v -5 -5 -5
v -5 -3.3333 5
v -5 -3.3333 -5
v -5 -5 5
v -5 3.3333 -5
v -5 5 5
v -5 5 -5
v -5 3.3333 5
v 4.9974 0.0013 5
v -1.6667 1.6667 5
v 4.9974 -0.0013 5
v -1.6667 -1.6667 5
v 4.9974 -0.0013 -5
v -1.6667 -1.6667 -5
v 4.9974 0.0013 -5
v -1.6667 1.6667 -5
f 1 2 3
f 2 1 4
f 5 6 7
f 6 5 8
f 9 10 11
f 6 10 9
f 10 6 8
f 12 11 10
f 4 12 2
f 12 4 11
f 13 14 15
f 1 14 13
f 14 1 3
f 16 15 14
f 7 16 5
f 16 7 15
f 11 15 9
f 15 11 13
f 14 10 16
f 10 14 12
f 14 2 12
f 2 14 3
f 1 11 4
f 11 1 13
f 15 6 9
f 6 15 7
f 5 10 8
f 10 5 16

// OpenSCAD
// Generated by SolidPython 1.1.3 on 2025-02-20 04:04:01
$fn=50;


intersection() {
	translate(v = [-5.0000000000, -5.0000000000, -5.0000000000]) {
		linear_extrude(height = 10) {
			polygon(points = [[5.0000000000, 10.0000000000], [5.3203510999, 9.9897269638], [5.6393858084, 9.9589500691], [5.9557931435, 9.9077957850], [6.2682729195, 9.8364743152], [6.5755410901, 9.7452787351], [6.8763350244, 9.6345837867], [7.1694186956, 9.5048443395], [7.4535877600, 9.3565935206], [7.7276745061, 9.1904405245], [7.9905526525, 9.0070681093], [8.2411419765, 8.8072297918], [8.4784127530, 8.5917467505], [8.7013899854, 8.3615044513], [8.9091574123, 8.1174490093], [9.1008612730, 7.8605833006], [9.2757138150, 7.5919628416], [9.4329965319, 7.3126914512], [9.5720631151, 7.0239167156], [9.6923421102, 6.7268252721], [9.7933392652, 6.4226379332], [9.8746395609, 6.1126046698], [9.9359089171, 5.7979994752], [9.9768955647, 5.4801151295], [9.9974310810, 5.1602578879], [9.9974310810, 4.8397421121], [9.9768955647, 4.5198848705], [9.9359089171, 4.2020005248], [9.8746395609, 3.8873953302], [9.7933392652, 3.5773620668], [9.6923421102, 3.2731747279], [9.5720631151, 2.9760832844], [9.4329965319, 2.6873085488], [9.2757138150, 2.4080371584], [9.1008612730, 2.1394166994], [8.9091574123, 1.8825509907], [8.7013899854, 1.6384955487], [8.4784127530, 1.4082532495], [8.2411419765, 1.1927702082], [7.9905526525, 0.9929318907], [7.7276745061, 0.8095594755], [7.4535877600, 0.6434064794], [7.1694186956, 0.4951556605], [6.8763350244, 0.3654162133], [6.5755410901, 0.2547212649], [6.2682729195, 0.1635256848], [5.9557931435, 0.0922042150], [5.6393858084, 0.0410499309], [5.3203510999, 0.0102730362], [5.0000000000, 0.0000000000], [0, 0], [0, 10]]);
		}
	}
	rotate(a = -90, v = [0, 0, 1]) {
		translate(v = [-5.0000000000, -5.0000000000, -5.0000000000]) {
			linear_extrude(height = 10) {
				polygon(points = [[0, 0], [5.0000000000, 10], [10, 0], [8.3333333333, 0], [6.6666666667, 3.3333333333], [3.3333333333, 3.3333333333], [1.6666666667, 0]]);
			}
		}
	}
}
/***********************************************
*********      SolidPython code:      **********
************************************************
 
from solid import *
from solid.utils import *

import math
import matplotlib.pyplot as plt
import subprocess
import os

class Hole:
    def __init__(self, x, y, radius):
        """
        Hole defined by:
        :param x: x dimension for center point of the circle as a ratio of letter height
        :param y: y dimension for center point of the circle as a ratio of letter height
        :param radius: radius of circle as a ratio of letter height
        """
        self.x = x
        self.y = y
        self.radius = radius

class Letter3D:
    def __init__(self, name, outer_shape_points, height, holes=None):
        """
        3D Letter defined by:
        :param name: name of letter
        :param outer_shape_points: points defining the outer shape of the letter
        :param heigh: size of cube that letter fits inside
        :param holes: list of Holes
        """
        self.name = name
        self.outer_shape_points = outer_shape_points
        self.holes = holes if holes is None else []
        self.height = height


    def generate(self):
        shape = polygon(points=self.outer_shape_points)

        if self.holes:
            for hole in self.holes:
                circle_hole = circle(r=hole.radius*self.height)
                positioned_hole = translate([hole.x*self.height, hole.y*self.height])(circle_hole)
                shape = difference()(shape, positioned_hole)
        
        shape_3d = linear_extrude(height=self.height)(shape)
        shape_3d = translate([-self.height/2, -self.height/2, -self.height/2])(shape_3d)
        return shape_3d
    
    def render(self):
        scad_render_to_file(self.shape, f"output/{self.name}.scad", file_header='$fn=50;')
        subprocess.run(["C:\\Program Files\\OpenSCAD\\openscad.exe", "-o", f"output\\{self.name}.stl", f"output\\{self.name}.scad"])


class TwoLetter3D:
    def __init__(self, height, letterA, letterA_face, letterB=None, letterB_face=None):
        self.height = height
        self.letterA = letterA
        self.letterB = letterB
        self.letterA_face = letterA_face
        self.letterB_face = letterB_face

    def call_letter_generation(self, letter):
        letter = letter.upper()
        function_name = f"letter_{letter}"
        func = globals().get(function_name)
        if func is None:
            raise ValueError(f"No letter generation function defined for letter '{letter}'.")
        else:
            print(func)
        return func(self.height)
    
    def rotate_object(self, face, shape):
        face = face.lower()
        if face == "z":
            return shape
        if face == "x":
            return rotate(a=90, v=[0,1,0])(shape)
        if face == "y":
            return rotate(a=-90, v=[0,0,1])(shape)
        else:
            raise ValueError("Face must be one of 'x', 'y', or 'z'.")

    def render(self):
        if self.letterA:
            letterA3D = self.call_letter_generation(self.letterA)
            letterA3D = self.rotate_object(self.letterA_face, letterA3D)

        if self.letterB:
            letterB3D = self.call_letter_generation(self.letterB)
            letterB3D = self.rotate_object(self.letterB_face, letterB3D)
            combined = intersection()(letterA3D, letterB3D)
            file_name = self.letterA + self.letterB
            scad_render_to_file(combined, f"output/{file_name}.scad", file_header='$fn=50;')
            subprocess.run(["C:\\Program Files\\OpenSCAD\\openscad.exe", "-o", f"output\\{file_name}.stl", f"output\\{file_name}.scad"])
            return
        else:
            file_name = self.letterA
            scad_render_to_file(letterA3D, f"output/{file_name}.scad", file_header='$fn=50;')
            subprocess.run(["C:\\Program Files\\OpenSCAD\\openscad.exe", "-o", f"output\\{file_name}.stl", f"output\\{file_name}.scad"])
    
                

def arc_points(radius, start_angle, end_angle, center=[0,0], num_points=50):
    angles = [start_angle + i * (end_angle - start_angle) / (num_points - 1)
              for i in range(num_points)]
    points = [
        (center[0] + radius * math.cos(math.radians(angle)),
         center[1] + radius * math.sin(math.radians(angle)))
        for angle in angles
    ]
    return points

def letter_A(h):
    shape_points = [(0,0), (h/2, h), (h, 0), (5/6*h, 0), (2/3*h, 1/3*h), (1/3*h, 1/3*h), (h/6, 0)]
    holes = [Hole(1/2, 7/12, 1/6)]
    A = Letter3D("A", shape_points, h, holes)
    return A.generate()

def letter_B(h):
    top_arc_points = arc_points(h/4, 90, -90, center=[3/4*h, 3/4*h])
    bottom_arc_points = arc_points(h/4, 90, -90, center=[3/4*h, h/4])
    other_points = [(0,0),(0,h)]

    shape_points = top_arc_points + bottom_arc_points + other_points
    holes = [Hole(1/2, 3/4, 1/6), Hole(1/2, 1/4, 1/6)]
    B = Letter3D("B", shape_points, h, holes)
    return B.generate()

def letter_C(h):
    outer_arc_points = arc_points(h/2, 30, 330, center=[h/2,h/2])
    inner_arc_points = arc_points(h/4, 30, 330, center=[h/2,h/2])[::-1]
    shape_points = outer_arc_points + inner_arc_points
    # print(shape_points)
    C = Letter3D("C", shape_points, h)
    return C.generate()


def letter_D(h):
    outer_arc_points = arc_points(h/2, 90, -90, center= [h/2, h/2])
    shape_points = outer_arc_points + [(0,0), (0, h)]
    holes = [Hole(1/2, 1/2, 1/6)]
    D = Letter3D("D", shape_points, h, holes)
    return D.generate()

def letter_E(h):
    points = [(0,0), (h,0), (h,h/5), (h/5,h/5), (h/5,2/5*h), (3/4*h,2/5*h), (3/4*h,3/5*h), (h/5,3/5*h), (h/5,4/5*h), (h,4/5*h), (h,h), (0,h)]
    E = Letter3D("E", points, h)
    return E.generate()

def letter_F(h):
    points = [(0,0), (h/5,0), (h/5,2/5*h), (3/4*h,2/5*h), (3/4*h,3/5*h), (h/5,3/5*h), (h/5,4/5*h), (h,4/5*h), (h,h), (0,h)]
    F = Letter3D("F", points, h)
    return F.generate()

if __name__ == "__main__":
    os.makedirs("output", exist_ok=True)

    letters = [chr(x) for x in range(ord('A'), ord('F') + 1)]
    for letter in letters:
        for other_letter in letters:
            shape = TwoLetter3D(10, letter, "z", other_letter, "y")
            shape.render()
 
 
************************************************/
